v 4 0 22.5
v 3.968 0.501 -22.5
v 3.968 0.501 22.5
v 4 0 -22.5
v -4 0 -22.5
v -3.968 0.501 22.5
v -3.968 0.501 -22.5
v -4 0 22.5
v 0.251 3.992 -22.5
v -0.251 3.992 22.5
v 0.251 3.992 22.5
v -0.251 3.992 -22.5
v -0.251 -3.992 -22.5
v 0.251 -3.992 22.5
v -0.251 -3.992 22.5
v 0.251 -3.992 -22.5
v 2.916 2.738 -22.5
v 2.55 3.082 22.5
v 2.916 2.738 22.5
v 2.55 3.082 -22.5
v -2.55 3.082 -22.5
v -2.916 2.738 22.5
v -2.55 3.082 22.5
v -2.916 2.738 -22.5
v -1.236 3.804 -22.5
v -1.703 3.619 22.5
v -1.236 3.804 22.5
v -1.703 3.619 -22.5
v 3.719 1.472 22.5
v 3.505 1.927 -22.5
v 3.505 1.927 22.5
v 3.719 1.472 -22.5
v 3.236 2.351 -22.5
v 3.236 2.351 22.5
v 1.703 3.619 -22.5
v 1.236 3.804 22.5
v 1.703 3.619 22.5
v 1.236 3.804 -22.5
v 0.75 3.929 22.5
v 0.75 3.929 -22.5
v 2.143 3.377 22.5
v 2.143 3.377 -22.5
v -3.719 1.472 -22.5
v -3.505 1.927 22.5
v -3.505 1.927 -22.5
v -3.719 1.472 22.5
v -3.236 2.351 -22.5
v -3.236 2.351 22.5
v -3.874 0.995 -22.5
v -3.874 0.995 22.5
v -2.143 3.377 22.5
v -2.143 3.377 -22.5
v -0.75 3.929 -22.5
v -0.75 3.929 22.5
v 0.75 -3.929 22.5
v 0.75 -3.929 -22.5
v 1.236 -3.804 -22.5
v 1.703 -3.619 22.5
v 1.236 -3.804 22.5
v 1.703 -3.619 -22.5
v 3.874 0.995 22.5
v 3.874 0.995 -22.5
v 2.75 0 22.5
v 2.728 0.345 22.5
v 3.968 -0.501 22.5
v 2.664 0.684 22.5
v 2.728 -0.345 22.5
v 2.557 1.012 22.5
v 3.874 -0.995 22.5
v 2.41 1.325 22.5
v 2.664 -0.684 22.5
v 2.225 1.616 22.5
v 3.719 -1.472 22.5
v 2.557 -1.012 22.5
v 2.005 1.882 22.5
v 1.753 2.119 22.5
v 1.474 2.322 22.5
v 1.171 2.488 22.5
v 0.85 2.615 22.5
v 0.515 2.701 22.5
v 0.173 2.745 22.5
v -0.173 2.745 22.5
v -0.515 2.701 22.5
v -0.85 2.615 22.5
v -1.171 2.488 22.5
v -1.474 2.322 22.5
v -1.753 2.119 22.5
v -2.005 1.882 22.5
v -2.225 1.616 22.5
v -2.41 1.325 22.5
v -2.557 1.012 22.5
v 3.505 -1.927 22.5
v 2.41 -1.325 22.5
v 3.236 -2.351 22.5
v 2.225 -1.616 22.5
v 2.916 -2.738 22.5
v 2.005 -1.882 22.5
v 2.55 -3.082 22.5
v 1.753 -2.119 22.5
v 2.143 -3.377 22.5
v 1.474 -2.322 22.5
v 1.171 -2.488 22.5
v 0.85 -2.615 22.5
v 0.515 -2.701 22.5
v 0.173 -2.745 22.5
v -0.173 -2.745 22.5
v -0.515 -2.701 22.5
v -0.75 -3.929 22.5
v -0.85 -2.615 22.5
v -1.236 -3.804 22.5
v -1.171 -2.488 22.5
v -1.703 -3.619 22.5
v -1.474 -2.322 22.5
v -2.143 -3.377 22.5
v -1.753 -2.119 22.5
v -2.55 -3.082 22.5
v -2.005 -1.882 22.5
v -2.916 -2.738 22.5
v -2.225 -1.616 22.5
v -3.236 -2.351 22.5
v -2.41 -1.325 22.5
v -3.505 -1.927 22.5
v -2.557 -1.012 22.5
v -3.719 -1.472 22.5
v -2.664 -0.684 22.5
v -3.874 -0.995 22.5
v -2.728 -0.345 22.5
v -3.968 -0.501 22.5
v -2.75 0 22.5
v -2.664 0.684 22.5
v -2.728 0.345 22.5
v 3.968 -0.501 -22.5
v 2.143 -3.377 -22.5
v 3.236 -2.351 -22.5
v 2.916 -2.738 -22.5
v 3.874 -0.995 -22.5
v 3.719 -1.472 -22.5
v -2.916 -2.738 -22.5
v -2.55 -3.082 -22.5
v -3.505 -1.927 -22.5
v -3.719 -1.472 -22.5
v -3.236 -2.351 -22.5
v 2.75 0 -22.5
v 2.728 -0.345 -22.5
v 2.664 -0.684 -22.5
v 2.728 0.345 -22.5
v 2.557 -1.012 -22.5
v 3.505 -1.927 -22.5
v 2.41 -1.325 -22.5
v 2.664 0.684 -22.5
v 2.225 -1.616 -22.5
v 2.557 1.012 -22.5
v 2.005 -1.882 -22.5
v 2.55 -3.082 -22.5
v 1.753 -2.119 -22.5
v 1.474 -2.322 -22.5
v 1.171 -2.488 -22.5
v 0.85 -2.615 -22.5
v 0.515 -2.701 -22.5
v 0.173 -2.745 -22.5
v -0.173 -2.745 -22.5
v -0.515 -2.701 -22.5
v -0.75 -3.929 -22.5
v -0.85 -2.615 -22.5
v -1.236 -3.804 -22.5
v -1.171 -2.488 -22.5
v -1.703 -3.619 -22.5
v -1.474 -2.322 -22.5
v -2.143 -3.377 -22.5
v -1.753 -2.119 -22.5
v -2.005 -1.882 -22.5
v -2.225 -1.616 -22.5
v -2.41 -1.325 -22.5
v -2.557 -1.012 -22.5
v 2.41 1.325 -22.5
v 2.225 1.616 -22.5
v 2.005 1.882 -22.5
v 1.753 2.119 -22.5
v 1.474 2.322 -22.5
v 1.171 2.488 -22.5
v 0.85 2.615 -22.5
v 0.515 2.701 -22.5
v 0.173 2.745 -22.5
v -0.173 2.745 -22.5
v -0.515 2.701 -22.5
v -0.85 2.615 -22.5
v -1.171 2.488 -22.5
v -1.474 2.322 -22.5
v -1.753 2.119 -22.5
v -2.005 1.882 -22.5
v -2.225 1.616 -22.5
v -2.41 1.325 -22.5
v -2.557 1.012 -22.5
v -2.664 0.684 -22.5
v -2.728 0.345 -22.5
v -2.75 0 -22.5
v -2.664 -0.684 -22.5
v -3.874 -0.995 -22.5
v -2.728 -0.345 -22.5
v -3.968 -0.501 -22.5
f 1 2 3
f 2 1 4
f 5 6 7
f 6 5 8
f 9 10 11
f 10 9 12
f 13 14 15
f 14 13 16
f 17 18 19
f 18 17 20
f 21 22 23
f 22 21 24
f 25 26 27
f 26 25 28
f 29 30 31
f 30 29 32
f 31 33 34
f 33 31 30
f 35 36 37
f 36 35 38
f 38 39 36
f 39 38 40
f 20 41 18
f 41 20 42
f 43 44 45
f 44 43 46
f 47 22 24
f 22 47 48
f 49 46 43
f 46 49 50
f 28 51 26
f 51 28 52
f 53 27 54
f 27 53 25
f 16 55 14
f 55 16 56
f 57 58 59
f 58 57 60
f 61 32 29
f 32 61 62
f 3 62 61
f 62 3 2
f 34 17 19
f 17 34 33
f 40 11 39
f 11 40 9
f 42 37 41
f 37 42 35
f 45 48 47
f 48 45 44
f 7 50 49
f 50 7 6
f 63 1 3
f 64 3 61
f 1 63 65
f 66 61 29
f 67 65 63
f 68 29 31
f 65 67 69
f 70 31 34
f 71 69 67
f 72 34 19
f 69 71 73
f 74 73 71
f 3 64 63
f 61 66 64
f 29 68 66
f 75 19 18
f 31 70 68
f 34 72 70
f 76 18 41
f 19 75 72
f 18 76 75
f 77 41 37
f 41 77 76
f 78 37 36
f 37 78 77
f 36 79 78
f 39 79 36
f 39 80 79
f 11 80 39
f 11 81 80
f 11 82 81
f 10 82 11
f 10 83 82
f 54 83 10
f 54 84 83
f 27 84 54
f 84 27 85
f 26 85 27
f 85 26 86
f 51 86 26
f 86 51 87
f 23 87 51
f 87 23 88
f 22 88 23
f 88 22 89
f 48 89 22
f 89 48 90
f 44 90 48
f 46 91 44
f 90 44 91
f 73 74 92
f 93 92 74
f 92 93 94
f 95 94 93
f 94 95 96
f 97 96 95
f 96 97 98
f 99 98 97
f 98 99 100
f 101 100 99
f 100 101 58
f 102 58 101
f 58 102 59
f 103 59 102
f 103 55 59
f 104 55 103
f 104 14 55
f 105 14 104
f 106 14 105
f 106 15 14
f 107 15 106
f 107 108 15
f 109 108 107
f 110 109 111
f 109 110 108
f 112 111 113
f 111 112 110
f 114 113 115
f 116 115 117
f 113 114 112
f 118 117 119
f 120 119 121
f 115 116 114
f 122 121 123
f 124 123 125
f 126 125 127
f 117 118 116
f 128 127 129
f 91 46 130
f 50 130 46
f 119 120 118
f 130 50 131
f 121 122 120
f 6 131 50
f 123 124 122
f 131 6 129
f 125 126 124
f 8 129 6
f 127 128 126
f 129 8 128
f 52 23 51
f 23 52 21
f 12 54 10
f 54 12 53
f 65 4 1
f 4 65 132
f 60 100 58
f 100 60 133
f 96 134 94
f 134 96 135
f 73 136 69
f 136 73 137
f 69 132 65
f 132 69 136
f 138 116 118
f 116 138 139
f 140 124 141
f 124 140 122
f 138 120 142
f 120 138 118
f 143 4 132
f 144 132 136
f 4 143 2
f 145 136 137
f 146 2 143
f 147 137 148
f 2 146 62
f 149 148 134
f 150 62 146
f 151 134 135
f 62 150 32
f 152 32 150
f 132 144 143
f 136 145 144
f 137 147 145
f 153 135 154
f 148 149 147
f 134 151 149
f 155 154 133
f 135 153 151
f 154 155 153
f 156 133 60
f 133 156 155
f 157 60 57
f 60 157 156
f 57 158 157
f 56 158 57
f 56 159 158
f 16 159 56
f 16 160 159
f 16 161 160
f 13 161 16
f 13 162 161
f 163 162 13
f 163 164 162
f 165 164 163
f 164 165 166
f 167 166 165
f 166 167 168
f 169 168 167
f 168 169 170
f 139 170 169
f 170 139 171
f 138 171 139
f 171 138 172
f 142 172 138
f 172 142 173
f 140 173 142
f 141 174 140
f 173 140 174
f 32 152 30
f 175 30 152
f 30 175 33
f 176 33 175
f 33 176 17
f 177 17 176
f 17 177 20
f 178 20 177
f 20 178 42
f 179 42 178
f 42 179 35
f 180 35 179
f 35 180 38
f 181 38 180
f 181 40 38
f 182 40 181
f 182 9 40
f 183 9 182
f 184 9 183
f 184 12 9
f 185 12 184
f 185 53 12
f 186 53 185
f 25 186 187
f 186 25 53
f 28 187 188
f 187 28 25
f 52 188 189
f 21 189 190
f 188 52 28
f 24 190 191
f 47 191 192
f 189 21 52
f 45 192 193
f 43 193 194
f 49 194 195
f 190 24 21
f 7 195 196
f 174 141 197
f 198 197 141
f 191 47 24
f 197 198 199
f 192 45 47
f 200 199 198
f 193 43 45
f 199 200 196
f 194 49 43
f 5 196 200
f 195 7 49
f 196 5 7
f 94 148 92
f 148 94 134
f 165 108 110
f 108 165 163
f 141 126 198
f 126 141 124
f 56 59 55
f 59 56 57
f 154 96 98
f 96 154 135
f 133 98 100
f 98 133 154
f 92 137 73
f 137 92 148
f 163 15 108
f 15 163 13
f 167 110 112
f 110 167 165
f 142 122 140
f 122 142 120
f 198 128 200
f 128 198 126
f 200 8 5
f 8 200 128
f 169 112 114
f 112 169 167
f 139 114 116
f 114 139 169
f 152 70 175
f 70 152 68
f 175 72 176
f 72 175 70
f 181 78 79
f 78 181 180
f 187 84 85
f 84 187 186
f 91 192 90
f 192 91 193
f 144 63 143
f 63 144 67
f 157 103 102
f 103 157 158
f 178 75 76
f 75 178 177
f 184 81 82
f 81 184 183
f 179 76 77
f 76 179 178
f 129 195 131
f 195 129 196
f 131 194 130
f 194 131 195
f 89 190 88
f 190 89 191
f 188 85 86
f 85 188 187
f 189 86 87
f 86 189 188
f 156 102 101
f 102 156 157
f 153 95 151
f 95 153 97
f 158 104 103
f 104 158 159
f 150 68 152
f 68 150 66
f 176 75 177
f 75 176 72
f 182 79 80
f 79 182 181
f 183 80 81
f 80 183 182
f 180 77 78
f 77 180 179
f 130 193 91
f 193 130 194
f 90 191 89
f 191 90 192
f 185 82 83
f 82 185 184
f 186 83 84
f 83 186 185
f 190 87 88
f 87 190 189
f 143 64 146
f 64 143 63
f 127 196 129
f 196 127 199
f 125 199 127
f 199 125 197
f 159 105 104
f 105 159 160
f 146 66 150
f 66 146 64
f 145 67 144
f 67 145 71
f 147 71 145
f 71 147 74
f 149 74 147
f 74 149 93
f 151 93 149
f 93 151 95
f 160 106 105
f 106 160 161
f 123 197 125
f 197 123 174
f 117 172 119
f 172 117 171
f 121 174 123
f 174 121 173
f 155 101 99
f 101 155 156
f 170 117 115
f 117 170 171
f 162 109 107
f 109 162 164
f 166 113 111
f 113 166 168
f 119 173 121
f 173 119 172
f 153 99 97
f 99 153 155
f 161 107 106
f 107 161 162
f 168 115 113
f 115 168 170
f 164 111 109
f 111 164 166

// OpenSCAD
$fn = 50;


difference() {
	union() {
		translate(v = [0, 0, -22.5000000000]) {
			cylinder(h = 45, r = 4.0000000000);
		}
	}
	union() {
		translate(v = [0, 0, -100.0000000000]) {
			cylinder(h = 200, r = 2.7500000000);
		}
	}
}
